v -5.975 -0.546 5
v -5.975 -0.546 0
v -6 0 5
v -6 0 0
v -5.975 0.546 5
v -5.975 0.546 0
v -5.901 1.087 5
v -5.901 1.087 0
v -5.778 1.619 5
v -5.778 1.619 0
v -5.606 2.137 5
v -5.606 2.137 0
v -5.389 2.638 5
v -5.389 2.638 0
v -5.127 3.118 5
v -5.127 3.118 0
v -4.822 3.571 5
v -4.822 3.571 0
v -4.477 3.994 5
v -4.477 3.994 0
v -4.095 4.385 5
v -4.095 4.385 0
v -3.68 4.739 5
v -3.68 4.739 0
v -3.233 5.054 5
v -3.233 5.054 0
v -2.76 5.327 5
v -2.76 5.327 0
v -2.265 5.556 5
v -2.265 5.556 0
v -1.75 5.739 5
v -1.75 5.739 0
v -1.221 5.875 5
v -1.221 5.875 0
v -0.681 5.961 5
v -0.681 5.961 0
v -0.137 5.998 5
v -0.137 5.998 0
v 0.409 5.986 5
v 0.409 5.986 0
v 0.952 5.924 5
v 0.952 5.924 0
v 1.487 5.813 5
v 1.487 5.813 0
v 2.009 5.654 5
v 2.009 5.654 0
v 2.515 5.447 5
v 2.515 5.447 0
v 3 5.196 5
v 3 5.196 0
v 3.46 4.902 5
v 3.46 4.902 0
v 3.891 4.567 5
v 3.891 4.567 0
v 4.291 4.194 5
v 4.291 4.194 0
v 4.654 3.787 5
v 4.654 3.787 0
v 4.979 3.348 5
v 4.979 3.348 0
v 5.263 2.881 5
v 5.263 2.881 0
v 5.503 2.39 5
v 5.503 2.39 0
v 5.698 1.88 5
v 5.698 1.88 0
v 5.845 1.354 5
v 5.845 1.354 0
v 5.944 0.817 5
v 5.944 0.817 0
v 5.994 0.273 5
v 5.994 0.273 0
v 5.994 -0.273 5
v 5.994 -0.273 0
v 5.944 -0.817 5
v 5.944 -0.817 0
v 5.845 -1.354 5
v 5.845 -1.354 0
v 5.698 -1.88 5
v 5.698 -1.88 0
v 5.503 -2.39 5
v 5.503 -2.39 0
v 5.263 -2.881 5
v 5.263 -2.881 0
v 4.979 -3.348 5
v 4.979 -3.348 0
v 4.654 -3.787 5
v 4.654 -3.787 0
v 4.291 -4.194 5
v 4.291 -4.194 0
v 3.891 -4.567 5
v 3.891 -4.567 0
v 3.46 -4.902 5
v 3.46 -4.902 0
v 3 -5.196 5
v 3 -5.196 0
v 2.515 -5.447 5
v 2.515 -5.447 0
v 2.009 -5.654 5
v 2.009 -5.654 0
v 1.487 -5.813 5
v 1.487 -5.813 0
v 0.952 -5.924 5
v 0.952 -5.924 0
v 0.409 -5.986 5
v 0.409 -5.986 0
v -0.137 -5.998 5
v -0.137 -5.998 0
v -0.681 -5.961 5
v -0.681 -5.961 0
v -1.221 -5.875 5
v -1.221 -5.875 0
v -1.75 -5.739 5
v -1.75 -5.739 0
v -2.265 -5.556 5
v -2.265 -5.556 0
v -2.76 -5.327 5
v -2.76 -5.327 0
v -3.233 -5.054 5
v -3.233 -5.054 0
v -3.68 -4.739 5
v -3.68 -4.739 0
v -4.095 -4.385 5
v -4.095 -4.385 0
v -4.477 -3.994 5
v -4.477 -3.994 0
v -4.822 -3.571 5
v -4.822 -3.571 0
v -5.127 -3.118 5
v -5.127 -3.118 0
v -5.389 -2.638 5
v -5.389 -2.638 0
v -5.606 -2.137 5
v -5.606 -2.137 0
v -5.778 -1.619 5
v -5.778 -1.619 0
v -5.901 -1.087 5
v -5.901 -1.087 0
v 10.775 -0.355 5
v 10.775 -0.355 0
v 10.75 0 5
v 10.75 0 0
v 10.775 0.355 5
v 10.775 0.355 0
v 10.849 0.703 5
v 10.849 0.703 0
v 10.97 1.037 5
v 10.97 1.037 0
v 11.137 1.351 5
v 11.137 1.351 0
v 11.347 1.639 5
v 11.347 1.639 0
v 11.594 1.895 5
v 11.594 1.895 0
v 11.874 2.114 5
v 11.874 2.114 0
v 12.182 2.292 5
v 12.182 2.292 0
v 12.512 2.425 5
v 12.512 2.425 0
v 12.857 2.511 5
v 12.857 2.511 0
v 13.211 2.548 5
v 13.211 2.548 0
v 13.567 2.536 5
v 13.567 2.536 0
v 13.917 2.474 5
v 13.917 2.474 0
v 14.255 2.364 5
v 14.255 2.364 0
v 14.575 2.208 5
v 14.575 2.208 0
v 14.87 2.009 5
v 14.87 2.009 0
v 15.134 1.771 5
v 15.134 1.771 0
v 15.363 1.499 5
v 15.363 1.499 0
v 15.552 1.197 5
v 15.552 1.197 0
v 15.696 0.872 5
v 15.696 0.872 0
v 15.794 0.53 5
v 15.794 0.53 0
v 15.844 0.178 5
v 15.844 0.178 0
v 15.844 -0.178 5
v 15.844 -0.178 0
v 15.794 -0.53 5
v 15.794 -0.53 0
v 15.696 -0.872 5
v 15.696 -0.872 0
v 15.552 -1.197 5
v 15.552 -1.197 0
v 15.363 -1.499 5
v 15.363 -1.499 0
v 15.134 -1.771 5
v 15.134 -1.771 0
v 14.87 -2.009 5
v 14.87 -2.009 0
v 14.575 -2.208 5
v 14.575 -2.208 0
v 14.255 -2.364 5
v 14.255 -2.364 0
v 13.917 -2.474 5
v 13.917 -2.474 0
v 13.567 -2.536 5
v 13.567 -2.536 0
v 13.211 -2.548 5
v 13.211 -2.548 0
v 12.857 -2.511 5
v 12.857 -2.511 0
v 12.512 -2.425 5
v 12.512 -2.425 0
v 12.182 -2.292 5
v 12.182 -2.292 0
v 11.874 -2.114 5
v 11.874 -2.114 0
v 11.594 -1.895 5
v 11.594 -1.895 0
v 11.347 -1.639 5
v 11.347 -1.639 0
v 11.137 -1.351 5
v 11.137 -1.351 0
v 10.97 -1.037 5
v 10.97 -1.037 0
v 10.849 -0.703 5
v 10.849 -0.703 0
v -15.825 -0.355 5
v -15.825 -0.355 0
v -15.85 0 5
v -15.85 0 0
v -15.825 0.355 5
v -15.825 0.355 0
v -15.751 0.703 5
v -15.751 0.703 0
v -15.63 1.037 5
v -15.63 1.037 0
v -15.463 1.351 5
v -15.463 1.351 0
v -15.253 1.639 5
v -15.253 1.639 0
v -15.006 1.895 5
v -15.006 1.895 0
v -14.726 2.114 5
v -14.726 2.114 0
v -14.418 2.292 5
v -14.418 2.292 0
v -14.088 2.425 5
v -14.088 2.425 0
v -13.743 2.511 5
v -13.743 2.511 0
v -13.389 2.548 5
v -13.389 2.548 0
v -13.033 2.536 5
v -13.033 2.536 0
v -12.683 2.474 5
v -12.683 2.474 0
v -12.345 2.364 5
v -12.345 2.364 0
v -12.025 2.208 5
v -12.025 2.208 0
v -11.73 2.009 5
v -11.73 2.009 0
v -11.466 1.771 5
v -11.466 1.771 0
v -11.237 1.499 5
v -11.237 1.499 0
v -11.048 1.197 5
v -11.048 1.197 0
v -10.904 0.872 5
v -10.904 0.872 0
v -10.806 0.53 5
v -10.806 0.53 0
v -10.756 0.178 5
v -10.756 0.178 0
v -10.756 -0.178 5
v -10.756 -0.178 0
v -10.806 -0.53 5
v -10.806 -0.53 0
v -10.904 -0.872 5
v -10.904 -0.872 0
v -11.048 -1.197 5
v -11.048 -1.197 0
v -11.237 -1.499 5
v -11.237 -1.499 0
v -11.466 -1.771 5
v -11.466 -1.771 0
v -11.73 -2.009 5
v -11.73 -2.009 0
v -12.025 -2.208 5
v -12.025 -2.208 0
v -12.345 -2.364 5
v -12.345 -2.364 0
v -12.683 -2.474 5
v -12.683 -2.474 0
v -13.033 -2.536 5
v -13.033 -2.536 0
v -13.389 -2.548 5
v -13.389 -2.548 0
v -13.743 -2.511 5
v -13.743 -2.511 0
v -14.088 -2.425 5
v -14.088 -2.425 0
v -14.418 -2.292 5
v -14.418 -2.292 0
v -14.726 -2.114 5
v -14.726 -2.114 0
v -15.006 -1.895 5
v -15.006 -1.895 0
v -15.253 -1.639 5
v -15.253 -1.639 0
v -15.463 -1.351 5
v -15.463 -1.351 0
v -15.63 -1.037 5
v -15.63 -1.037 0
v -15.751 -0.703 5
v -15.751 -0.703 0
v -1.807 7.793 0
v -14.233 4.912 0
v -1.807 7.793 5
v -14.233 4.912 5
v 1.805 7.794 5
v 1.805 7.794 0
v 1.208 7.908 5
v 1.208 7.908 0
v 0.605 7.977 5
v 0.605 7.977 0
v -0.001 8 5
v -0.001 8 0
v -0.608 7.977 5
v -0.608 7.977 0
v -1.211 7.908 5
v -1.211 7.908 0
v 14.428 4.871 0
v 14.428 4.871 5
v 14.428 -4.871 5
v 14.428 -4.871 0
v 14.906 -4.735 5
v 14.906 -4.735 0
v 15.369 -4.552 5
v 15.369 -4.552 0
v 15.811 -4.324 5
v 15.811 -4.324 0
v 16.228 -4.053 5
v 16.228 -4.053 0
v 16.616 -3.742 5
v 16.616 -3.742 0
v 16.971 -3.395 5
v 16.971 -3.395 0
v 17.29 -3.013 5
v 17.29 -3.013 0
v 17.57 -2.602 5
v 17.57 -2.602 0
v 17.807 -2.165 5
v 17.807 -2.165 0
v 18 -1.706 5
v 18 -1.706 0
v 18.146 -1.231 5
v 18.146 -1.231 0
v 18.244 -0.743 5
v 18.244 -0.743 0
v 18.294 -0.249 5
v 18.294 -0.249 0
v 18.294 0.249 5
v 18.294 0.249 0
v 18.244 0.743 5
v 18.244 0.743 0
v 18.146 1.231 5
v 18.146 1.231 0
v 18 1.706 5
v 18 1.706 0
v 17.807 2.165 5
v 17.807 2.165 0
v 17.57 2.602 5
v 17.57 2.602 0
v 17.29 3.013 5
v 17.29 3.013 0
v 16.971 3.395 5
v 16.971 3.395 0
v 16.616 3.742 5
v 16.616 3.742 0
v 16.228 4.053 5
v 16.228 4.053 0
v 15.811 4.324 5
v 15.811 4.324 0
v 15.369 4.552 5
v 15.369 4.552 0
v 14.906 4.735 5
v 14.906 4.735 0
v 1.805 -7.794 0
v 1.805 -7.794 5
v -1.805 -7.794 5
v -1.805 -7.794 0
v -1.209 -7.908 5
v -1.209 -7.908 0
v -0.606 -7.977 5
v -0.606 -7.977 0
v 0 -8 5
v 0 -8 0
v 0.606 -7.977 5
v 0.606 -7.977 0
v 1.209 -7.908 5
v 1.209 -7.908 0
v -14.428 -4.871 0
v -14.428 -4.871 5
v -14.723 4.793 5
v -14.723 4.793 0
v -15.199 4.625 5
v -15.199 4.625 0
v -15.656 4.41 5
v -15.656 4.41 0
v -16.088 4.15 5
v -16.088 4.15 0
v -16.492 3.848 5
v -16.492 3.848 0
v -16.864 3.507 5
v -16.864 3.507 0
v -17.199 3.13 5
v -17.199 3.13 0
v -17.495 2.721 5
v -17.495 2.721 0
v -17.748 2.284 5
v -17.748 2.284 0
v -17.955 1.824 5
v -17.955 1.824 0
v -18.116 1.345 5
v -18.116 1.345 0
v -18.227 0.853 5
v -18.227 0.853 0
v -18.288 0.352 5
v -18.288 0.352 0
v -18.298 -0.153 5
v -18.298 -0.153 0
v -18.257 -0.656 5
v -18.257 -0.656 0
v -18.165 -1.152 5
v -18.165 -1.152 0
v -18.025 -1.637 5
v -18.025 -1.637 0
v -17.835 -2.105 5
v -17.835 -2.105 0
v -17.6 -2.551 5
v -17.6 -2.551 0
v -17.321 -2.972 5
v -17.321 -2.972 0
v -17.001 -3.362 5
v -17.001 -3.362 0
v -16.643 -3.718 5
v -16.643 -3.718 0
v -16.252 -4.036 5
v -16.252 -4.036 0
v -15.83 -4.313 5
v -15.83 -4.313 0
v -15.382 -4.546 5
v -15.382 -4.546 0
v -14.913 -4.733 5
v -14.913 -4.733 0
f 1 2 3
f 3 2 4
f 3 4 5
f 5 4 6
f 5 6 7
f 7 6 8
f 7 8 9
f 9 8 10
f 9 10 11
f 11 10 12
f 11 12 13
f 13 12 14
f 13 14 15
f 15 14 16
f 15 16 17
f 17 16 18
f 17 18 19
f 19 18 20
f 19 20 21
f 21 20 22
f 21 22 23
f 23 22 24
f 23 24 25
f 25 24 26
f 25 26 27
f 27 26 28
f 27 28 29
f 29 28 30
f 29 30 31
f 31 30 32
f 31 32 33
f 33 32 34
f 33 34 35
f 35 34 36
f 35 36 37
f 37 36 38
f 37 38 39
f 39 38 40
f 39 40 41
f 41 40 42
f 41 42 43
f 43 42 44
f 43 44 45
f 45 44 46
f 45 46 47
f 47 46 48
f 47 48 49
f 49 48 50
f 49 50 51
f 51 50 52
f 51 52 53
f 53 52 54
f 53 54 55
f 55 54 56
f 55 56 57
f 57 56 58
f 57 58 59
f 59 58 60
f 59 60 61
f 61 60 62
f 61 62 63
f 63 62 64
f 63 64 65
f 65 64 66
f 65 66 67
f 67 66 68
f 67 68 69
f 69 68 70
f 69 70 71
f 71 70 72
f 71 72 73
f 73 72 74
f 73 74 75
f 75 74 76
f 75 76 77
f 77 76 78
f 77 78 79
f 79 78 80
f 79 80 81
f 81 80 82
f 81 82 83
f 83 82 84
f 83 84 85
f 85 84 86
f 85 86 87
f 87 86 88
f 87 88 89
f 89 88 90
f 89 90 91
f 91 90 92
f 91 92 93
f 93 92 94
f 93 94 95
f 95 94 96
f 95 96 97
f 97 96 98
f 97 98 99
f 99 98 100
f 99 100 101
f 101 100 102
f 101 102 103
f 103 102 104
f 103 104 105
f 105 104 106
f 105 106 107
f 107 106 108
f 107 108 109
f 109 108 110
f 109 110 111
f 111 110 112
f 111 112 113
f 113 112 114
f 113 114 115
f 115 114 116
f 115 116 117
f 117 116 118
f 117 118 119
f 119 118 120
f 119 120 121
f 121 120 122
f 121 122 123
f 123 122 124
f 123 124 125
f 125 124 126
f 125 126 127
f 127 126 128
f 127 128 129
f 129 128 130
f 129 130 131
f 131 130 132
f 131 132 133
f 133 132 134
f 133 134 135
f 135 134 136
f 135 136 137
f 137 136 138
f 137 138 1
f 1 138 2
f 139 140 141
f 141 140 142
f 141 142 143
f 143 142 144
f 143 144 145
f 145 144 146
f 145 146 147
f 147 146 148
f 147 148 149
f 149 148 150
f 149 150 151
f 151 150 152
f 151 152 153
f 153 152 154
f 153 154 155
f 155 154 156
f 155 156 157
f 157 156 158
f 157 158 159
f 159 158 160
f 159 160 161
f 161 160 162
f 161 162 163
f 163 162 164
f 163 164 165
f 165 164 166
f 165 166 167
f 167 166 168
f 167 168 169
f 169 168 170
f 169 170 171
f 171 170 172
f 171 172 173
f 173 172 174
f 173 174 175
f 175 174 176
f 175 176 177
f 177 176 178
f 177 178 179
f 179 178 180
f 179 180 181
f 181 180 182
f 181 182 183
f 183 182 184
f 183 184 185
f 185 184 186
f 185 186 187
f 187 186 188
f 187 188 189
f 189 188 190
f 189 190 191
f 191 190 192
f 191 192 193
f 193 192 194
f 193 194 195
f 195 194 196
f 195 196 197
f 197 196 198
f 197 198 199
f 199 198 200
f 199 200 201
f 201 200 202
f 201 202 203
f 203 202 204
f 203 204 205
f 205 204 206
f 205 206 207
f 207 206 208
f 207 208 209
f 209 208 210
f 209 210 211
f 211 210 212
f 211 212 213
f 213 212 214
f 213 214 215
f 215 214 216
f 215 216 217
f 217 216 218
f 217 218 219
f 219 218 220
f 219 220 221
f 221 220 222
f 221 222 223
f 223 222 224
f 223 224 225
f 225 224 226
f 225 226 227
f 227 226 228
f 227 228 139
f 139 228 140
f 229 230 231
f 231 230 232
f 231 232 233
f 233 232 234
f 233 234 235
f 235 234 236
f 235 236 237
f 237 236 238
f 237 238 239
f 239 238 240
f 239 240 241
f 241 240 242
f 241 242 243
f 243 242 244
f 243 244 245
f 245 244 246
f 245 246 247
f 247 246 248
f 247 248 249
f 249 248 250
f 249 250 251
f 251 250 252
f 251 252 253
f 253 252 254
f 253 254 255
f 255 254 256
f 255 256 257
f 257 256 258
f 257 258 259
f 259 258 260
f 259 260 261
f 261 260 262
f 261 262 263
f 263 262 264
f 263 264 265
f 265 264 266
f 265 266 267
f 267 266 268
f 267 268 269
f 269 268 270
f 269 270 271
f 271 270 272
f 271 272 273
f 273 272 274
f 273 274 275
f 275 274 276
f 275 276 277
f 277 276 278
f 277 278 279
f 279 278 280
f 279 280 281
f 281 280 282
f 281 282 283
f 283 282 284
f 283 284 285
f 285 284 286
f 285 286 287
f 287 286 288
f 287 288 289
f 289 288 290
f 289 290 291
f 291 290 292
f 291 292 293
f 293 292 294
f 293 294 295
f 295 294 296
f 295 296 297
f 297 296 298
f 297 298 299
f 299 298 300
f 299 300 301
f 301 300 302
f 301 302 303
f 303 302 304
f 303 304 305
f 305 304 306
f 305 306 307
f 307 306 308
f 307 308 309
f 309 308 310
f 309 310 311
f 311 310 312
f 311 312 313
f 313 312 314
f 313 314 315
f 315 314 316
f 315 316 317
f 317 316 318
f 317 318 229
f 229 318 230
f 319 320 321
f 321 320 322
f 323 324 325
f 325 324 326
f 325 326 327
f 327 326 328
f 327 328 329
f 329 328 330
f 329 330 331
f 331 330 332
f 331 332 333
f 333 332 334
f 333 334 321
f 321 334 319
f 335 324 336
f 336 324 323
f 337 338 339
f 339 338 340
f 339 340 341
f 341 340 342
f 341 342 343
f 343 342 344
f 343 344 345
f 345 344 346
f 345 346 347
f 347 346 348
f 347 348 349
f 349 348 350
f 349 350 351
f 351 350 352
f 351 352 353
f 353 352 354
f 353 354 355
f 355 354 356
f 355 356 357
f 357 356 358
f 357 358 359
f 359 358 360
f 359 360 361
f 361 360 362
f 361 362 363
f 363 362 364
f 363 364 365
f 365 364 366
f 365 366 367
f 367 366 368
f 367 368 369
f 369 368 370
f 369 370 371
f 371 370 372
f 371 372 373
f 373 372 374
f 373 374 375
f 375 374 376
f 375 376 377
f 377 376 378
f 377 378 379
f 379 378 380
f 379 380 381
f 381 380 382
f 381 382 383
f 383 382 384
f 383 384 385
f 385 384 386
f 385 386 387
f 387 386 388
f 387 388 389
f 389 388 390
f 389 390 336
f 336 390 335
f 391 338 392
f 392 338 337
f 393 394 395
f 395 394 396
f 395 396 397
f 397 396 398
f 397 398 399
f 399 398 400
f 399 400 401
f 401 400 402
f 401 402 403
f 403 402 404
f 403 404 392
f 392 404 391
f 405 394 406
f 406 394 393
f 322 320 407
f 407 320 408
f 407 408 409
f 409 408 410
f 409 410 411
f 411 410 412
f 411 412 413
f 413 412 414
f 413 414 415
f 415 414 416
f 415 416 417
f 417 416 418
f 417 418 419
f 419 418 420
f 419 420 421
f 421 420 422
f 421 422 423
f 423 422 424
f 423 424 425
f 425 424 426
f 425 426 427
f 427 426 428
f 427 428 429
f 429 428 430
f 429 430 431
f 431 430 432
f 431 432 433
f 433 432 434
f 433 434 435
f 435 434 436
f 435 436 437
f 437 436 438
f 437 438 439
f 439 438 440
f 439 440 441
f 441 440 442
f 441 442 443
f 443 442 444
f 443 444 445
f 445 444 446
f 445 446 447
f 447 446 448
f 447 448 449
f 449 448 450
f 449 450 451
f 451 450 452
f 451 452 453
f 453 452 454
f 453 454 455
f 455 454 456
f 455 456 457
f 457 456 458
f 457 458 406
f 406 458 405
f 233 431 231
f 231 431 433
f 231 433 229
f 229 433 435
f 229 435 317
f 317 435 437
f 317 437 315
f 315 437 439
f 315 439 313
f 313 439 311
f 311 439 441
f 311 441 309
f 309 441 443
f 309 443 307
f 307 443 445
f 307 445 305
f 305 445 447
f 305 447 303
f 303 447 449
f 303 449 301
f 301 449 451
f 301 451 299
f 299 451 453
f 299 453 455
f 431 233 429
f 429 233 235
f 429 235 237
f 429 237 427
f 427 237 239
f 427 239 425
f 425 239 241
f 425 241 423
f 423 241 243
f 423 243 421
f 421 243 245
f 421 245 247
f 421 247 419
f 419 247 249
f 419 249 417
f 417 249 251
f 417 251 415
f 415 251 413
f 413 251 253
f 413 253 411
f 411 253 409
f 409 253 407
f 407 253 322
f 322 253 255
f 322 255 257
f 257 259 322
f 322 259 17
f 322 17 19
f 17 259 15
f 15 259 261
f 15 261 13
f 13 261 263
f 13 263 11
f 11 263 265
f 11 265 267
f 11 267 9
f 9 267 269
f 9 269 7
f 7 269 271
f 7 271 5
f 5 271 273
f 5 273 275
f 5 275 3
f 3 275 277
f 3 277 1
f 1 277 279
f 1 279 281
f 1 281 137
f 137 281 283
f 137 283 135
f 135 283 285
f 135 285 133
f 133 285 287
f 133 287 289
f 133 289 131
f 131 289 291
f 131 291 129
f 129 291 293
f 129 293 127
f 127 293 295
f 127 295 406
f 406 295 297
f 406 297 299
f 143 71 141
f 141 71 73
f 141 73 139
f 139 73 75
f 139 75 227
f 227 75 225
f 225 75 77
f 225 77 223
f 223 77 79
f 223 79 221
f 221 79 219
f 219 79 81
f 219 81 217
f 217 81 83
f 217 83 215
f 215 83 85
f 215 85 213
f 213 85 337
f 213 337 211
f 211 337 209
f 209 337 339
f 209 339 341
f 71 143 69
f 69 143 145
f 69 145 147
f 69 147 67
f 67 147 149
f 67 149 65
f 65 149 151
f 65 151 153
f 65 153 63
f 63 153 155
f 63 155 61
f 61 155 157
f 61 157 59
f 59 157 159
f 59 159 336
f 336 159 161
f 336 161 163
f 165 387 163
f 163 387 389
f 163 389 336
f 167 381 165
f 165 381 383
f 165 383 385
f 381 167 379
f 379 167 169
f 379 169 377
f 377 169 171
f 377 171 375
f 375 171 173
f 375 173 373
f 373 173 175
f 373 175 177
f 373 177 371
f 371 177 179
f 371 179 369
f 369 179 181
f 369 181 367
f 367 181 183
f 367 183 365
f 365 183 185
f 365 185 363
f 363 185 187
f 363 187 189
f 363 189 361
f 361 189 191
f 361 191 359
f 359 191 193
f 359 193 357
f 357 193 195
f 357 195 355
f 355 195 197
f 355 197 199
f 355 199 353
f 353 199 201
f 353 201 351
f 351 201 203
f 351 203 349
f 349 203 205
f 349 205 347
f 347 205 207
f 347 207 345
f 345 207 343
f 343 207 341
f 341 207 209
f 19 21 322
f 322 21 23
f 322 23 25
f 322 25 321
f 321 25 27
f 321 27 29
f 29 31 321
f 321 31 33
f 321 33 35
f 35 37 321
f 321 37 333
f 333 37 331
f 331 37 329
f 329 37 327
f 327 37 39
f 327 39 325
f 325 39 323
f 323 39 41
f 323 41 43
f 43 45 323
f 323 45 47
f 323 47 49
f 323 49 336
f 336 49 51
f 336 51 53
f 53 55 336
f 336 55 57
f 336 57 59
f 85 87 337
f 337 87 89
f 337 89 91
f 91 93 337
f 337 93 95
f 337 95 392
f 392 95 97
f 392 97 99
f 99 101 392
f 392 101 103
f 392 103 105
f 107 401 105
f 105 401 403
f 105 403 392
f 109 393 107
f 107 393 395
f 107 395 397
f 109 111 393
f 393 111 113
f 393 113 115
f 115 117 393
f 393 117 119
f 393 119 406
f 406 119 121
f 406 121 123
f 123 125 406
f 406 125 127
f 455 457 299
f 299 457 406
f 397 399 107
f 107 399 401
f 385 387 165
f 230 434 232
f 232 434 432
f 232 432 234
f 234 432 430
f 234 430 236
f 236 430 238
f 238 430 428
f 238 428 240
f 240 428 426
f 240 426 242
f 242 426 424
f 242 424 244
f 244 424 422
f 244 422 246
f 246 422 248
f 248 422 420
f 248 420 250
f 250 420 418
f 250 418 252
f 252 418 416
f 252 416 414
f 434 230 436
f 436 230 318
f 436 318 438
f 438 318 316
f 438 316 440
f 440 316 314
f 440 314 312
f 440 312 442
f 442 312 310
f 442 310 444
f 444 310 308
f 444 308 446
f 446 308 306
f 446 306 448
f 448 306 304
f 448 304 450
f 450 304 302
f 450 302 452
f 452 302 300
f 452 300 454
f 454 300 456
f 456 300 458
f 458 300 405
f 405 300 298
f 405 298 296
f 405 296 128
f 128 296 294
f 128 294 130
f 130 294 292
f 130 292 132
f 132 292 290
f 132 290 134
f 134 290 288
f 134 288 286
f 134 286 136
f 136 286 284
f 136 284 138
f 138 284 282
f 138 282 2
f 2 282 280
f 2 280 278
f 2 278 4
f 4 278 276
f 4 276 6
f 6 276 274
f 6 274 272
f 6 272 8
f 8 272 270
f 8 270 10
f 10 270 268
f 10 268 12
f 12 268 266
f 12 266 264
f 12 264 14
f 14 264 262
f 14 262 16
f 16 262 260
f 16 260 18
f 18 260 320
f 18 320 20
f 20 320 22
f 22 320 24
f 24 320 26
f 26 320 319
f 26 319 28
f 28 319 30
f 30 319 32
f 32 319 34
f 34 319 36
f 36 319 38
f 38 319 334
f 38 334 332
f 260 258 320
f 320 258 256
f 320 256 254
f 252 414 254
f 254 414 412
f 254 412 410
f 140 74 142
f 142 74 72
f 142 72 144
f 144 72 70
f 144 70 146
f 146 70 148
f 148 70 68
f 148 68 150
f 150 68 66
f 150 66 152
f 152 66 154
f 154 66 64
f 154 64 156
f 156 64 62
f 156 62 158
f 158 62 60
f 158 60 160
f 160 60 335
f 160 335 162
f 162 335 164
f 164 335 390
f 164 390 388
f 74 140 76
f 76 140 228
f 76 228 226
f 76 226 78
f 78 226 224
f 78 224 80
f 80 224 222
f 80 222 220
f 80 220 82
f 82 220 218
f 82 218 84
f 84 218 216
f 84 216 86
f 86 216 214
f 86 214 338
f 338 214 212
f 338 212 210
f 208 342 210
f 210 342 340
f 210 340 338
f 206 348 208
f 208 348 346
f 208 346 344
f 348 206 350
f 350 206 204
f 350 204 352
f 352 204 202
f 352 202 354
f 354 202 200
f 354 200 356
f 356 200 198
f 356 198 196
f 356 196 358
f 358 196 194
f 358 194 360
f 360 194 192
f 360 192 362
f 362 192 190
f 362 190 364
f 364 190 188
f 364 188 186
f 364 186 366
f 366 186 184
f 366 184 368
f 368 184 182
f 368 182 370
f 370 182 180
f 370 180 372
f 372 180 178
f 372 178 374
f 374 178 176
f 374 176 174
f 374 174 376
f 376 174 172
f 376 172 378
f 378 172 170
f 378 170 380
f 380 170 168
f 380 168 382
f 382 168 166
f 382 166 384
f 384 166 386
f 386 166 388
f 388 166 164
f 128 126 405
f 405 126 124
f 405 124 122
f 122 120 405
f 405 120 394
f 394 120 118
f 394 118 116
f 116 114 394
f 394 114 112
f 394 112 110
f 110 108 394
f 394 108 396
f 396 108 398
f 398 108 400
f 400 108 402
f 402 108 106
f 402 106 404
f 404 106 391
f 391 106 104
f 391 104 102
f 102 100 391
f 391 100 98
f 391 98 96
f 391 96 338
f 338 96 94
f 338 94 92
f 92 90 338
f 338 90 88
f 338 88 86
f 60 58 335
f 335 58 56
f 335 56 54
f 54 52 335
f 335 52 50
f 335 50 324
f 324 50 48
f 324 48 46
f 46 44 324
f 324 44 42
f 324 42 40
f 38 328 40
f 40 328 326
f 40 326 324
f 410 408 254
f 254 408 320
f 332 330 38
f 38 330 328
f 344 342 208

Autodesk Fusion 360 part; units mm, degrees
sketch "Sketch1" plane through (0, 0, 0) normal (0, 0, 1) x (1, 0, 0)
  circle A0 centre (-13.3, 0) radius 2.55
  circle A1 centre (-13.3, 0) radius 5
  line L0 (0, 10) -> (0, 0) construction
  circle A2 centre (13.3, 0) radius 2.55
  circle A3 centre (13.3, 0) radius 5
  circle A4 centre (0, 0) radius 6
  circle A5 centre (0, 0) radius 8
  line L1 (-14.2326, 4.9123) -> (-1.8069, 7.7933)
  line L2 (1.8045, 7.7938) -> (14.4278, 4.8711)
  line L3 (1.8045, -7.7938) -> (14.4278, -4.8711)
  line L4 (-14.4278, -4.8711) -> (-1.8045, -7.7938)
  circle A6 centre (-13.3, 0) radius 1.5
  circle A7 centre (13.3, 0) radius 1.5
  dimension "d1" = 5.1
  dimension "d2" = 13.3
  dimension "d3" = 10
  dimension "d6" = 12
  dimension "d7" = 16
  dimension "d10" = 3
extrude "Extrude2" add sketch "Sketch1" along normal blind 5 contours A1 | A1 A5 L1 L4 | A5 | A3 A5 L2 L3 | A3
equation "d2 = ( 26.6 / 2 ) * 1 mm"
